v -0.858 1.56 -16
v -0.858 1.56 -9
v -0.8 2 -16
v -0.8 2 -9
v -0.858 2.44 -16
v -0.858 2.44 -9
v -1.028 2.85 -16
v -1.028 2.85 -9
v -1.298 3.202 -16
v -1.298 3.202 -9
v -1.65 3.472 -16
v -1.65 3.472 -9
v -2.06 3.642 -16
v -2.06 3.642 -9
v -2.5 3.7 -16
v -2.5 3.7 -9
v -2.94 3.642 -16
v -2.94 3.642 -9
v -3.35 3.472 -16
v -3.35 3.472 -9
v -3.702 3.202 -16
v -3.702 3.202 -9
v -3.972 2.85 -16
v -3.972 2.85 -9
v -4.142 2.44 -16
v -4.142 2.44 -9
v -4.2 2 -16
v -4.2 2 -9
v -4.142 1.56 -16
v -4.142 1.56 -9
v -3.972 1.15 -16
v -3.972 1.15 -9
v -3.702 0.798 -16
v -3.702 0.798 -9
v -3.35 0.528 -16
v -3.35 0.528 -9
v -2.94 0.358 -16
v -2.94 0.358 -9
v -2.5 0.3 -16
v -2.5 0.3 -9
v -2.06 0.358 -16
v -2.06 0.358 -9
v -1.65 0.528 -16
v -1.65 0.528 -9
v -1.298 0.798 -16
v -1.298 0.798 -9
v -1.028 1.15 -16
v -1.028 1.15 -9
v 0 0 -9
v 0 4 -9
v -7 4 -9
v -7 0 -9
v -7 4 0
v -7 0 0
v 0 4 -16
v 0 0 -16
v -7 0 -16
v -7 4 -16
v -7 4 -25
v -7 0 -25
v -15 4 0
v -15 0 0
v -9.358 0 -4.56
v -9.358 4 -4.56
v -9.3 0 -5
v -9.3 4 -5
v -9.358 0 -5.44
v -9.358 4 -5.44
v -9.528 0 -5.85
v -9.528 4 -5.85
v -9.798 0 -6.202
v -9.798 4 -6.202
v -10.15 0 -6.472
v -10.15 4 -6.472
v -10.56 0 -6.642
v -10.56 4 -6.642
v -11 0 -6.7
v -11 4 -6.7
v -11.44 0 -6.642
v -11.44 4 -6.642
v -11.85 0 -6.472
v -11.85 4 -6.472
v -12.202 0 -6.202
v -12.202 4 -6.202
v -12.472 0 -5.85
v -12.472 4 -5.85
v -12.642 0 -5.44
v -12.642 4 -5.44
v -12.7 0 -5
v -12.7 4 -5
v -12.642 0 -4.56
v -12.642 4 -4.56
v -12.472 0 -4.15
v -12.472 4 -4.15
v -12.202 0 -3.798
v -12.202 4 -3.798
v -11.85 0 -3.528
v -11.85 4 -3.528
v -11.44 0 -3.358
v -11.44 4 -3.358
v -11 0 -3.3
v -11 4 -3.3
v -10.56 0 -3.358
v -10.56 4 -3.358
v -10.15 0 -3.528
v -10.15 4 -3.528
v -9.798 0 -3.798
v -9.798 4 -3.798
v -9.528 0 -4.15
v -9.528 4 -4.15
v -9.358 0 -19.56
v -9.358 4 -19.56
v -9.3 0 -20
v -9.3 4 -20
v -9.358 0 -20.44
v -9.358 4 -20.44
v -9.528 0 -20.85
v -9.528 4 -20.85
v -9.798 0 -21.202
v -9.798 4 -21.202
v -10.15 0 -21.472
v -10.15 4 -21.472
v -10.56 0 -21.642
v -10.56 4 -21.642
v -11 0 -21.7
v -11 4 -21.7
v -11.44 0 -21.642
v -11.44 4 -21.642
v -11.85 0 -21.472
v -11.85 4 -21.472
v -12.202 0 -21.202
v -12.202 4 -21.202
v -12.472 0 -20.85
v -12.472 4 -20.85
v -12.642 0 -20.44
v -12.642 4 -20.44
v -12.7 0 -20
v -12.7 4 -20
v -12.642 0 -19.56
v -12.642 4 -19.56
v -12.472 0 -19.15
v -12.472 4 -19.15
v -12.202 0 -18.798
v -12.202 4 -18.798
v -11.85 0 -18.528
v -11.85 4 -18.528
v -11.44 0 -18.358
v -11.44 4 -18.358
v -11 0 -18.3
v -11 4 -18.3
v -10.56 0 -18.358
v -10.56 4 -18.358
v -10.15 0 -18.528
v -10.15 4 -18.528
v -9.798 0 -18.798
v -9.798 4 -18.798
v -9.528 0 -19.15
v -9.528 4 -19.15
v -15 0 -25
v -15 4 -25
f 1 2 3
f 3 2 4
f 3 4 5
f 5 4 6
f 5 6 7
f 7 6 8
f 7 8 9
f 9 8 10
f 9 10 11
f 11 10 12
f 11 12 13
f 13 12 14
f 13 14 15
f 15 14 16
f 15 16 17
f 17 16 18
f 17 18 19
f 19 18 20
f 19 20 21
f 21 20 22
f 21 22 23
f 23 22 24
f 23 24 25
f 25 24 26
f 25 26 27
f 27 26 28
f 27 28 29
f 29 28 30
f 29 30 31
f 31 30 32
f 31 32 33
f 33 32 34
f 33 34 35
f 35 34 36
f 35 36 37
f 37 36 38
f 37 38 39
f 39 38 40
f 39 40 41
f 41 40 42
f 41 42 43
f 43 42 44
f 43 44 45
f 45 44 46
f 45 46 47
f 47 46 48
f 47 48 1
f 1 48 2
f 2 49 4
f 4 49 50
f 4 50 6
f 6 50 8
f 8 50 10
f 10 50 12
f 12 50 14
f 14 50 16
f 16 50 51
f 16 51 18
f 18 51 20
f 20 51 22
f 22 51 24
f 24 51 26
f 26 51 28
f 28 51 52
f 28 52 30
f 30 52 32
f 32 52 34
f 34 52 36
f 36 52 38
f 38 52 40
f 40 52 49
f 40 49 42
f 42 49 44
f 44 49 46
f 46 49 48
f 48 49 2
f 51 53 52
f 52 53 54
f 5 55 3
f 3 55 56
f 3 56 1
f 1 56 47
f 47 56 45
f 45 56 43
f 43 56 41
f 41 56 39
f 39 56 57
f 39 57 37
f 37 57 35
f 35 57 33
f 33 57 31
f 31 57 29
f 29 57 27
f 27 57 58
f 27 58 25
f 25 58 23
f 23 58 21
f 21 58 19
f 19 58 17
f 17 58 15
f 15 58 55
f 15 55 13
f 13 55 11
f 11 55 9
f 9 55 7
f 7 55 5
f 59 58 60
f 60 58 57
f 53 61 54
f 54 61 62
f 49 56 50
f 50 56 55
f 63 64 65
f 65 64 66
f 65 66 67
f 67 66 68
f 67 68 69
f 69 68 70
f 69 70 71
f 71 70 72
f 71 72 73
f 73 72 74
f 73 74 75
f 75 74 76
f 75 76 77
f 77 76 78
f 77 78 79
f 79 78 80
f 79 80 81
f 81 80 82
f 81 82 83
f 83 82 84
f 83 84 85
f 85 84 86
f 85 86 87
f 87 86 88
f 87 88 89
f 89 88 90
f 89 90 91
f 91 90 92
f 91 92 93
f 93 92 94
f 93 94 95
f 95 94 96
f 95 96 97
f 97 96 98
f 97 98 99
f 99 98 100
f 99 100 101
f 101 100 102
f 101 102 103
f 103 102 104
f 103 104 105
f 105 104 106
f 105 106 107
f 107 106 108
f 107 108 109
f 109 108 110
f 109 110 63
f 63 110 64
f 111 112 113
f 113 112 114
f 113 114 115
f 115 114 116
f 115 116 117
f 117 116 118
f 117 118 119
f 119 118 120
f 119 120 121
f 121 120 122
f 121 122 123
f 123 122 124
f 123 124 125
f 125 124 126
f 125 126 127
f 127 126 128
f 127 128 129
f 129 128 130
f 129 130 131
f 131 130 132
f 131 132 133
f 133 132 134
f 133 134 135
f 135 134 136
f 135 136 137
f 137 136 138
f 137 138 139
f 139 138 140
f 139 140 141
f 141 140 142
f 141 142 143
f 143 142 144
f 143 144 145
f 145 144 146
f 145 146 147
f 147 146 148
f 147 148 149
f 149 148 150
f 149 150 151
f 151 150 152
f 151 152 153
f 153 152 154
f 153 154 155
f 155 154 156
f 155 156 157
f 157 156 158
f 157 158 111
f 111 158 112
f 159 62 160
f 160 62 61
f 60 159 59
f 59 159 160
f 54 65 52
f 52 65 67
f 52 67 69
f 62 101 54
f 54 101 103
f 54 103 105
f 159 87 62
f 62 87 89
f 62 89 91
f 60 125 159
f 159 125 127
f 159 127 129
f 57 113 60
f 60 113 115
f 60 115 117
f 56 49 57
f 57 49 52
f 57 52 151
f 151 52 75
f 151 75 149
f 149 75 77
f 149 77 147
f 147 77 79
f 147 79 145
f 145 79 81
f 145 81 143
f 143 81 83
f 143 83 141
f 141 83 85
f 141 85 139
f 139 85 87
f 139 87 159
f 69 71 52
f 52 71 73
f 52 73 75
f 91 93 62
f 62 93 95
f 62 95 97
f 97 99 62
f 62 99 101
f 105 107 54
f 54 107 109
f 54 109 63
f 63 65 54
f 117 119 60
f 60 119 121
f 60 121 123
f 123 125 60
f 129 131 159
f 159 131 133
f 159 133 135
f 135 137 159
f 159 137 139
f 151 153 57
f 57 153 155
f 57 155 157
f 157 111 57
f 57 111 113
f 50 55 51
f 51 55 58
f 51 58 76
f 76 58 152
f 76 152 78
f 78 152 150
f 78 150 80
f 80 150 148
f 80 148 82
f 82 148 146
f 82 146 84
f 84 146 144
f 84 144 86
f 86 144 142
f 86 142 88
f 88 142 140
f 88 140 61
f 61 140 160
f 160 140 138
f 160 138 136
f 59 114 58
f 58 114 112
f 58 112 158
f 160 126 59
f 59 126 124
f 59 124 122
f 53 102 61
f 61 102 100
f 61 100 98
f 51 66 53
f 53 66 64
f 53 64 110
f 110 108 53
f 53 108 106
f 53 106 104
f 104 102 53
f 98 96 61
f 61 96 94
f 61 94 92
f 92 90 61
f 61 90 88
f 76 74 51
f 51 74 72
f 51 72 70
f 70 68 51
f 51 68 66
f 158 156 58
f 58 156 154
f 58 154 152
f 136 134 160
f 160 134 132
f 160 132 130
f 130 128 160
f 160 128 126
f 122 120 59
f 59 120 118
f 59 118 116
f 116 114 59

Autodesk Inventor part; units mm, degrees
ref_plane "YZ Plane" through (0, 0, 0) normal (1, 0, 0) x (0, 1, 0)
ref_plane "XZ Plane" through (0, 0, 0) normal (0, 1, 0) x (-1, 0, 0)
ref_plane "XY Plane" through (0, 0, 0) normal (0, 0, 1) x (1, 0, 0)
sketch "Skizze1" plane through (0, 0, 0) normal (0, 1, 0) x (-1, 0, 0)
  line L0 (0, 0) -> (15, 0)
  line L1 (15, 0) -> (15, -25)
  line L2 (15, -25) -> (0, -25)
  line L3 (0, -25) -> (0, 0)
  dimension "d0" = 25
  dimension "d1" = 15
extrude "Extrusion1" add sketch "Skizze1" along normal blind 4
sketch "Skizze3" plane through (0, 0, -25) normal (0, 0, -1) x (-1, 0, 0)
  point P0 (0, 0)
sketch "Skizze6" plane through (0, 4, 0) normal (0, 1, 0) x (1, 0, 0)
  circle A0 centre (-11, 5) radius 1.7
  line L0 (-15, 25) -> (-15, 0) projected
  line L1 (-15, 0) -> (0, 0) projected
  circle A1 centre (-11, 20) radius 1.7
  line L2 (0, 25) -> (-15, 25) projected
  point P0 (0, 30)
  dimension "d11" = 3.4
  dimension "d12" = 4
  dimension "d13" = 5
  dimension "d14" = 3.4
  dimension "d15" = 4
  dimension "d16" = 5
extrude "Extrusion4" cut sketch "Skizze6" against normal blind 30
sketch "Skizze7" plane through (0, 0, 0) normal (0, -1, 0) x (1, 0, 0)
  line L0 (0, -25) -> (-15, -25) projected
  line L1 (0, -25) -> (-7, -25)
  line L2 (-7, -25) -> (-7, -16)
  line L3 (-7, -16) -> (0, -16)
  line L4 (0, -16) -> (0, -25)
  line L5 (-15, 0) -> (0, 0) projected
  line L6 (0, 0) -> (-7, 0)
  line L7 (-7, 0) -> (-7, -9)
  line L8 (-7, -9) -> (0, -9)
  line L9 (0, -9) -> (0, 0)
  dimension "d19" = 7
  dimension "d20" = 9
  dimension "d21" = 7
  dimension "d22" = 9
extrude "Extrusion5" cut sketch "Skizze7" against normal blind 30
sketch "Skizze8" plane through (-7, 0, -9) normal (0, 0, 1) x (1, 0, 0)
  circle A0 centre (4.5, 2) radius 1.7
  line L0 (7, 0) -> (0, 0) projected
  line L1 (7, 4) -> (7, 0) projected
  dimension "d25" = 3.4
  dimension "d26" = 2
  dimension "d27" = 2.5
extrude "Extrusion6" cut sketch "Skizze8" against normal blind 30
properties part number "kamera ut"
